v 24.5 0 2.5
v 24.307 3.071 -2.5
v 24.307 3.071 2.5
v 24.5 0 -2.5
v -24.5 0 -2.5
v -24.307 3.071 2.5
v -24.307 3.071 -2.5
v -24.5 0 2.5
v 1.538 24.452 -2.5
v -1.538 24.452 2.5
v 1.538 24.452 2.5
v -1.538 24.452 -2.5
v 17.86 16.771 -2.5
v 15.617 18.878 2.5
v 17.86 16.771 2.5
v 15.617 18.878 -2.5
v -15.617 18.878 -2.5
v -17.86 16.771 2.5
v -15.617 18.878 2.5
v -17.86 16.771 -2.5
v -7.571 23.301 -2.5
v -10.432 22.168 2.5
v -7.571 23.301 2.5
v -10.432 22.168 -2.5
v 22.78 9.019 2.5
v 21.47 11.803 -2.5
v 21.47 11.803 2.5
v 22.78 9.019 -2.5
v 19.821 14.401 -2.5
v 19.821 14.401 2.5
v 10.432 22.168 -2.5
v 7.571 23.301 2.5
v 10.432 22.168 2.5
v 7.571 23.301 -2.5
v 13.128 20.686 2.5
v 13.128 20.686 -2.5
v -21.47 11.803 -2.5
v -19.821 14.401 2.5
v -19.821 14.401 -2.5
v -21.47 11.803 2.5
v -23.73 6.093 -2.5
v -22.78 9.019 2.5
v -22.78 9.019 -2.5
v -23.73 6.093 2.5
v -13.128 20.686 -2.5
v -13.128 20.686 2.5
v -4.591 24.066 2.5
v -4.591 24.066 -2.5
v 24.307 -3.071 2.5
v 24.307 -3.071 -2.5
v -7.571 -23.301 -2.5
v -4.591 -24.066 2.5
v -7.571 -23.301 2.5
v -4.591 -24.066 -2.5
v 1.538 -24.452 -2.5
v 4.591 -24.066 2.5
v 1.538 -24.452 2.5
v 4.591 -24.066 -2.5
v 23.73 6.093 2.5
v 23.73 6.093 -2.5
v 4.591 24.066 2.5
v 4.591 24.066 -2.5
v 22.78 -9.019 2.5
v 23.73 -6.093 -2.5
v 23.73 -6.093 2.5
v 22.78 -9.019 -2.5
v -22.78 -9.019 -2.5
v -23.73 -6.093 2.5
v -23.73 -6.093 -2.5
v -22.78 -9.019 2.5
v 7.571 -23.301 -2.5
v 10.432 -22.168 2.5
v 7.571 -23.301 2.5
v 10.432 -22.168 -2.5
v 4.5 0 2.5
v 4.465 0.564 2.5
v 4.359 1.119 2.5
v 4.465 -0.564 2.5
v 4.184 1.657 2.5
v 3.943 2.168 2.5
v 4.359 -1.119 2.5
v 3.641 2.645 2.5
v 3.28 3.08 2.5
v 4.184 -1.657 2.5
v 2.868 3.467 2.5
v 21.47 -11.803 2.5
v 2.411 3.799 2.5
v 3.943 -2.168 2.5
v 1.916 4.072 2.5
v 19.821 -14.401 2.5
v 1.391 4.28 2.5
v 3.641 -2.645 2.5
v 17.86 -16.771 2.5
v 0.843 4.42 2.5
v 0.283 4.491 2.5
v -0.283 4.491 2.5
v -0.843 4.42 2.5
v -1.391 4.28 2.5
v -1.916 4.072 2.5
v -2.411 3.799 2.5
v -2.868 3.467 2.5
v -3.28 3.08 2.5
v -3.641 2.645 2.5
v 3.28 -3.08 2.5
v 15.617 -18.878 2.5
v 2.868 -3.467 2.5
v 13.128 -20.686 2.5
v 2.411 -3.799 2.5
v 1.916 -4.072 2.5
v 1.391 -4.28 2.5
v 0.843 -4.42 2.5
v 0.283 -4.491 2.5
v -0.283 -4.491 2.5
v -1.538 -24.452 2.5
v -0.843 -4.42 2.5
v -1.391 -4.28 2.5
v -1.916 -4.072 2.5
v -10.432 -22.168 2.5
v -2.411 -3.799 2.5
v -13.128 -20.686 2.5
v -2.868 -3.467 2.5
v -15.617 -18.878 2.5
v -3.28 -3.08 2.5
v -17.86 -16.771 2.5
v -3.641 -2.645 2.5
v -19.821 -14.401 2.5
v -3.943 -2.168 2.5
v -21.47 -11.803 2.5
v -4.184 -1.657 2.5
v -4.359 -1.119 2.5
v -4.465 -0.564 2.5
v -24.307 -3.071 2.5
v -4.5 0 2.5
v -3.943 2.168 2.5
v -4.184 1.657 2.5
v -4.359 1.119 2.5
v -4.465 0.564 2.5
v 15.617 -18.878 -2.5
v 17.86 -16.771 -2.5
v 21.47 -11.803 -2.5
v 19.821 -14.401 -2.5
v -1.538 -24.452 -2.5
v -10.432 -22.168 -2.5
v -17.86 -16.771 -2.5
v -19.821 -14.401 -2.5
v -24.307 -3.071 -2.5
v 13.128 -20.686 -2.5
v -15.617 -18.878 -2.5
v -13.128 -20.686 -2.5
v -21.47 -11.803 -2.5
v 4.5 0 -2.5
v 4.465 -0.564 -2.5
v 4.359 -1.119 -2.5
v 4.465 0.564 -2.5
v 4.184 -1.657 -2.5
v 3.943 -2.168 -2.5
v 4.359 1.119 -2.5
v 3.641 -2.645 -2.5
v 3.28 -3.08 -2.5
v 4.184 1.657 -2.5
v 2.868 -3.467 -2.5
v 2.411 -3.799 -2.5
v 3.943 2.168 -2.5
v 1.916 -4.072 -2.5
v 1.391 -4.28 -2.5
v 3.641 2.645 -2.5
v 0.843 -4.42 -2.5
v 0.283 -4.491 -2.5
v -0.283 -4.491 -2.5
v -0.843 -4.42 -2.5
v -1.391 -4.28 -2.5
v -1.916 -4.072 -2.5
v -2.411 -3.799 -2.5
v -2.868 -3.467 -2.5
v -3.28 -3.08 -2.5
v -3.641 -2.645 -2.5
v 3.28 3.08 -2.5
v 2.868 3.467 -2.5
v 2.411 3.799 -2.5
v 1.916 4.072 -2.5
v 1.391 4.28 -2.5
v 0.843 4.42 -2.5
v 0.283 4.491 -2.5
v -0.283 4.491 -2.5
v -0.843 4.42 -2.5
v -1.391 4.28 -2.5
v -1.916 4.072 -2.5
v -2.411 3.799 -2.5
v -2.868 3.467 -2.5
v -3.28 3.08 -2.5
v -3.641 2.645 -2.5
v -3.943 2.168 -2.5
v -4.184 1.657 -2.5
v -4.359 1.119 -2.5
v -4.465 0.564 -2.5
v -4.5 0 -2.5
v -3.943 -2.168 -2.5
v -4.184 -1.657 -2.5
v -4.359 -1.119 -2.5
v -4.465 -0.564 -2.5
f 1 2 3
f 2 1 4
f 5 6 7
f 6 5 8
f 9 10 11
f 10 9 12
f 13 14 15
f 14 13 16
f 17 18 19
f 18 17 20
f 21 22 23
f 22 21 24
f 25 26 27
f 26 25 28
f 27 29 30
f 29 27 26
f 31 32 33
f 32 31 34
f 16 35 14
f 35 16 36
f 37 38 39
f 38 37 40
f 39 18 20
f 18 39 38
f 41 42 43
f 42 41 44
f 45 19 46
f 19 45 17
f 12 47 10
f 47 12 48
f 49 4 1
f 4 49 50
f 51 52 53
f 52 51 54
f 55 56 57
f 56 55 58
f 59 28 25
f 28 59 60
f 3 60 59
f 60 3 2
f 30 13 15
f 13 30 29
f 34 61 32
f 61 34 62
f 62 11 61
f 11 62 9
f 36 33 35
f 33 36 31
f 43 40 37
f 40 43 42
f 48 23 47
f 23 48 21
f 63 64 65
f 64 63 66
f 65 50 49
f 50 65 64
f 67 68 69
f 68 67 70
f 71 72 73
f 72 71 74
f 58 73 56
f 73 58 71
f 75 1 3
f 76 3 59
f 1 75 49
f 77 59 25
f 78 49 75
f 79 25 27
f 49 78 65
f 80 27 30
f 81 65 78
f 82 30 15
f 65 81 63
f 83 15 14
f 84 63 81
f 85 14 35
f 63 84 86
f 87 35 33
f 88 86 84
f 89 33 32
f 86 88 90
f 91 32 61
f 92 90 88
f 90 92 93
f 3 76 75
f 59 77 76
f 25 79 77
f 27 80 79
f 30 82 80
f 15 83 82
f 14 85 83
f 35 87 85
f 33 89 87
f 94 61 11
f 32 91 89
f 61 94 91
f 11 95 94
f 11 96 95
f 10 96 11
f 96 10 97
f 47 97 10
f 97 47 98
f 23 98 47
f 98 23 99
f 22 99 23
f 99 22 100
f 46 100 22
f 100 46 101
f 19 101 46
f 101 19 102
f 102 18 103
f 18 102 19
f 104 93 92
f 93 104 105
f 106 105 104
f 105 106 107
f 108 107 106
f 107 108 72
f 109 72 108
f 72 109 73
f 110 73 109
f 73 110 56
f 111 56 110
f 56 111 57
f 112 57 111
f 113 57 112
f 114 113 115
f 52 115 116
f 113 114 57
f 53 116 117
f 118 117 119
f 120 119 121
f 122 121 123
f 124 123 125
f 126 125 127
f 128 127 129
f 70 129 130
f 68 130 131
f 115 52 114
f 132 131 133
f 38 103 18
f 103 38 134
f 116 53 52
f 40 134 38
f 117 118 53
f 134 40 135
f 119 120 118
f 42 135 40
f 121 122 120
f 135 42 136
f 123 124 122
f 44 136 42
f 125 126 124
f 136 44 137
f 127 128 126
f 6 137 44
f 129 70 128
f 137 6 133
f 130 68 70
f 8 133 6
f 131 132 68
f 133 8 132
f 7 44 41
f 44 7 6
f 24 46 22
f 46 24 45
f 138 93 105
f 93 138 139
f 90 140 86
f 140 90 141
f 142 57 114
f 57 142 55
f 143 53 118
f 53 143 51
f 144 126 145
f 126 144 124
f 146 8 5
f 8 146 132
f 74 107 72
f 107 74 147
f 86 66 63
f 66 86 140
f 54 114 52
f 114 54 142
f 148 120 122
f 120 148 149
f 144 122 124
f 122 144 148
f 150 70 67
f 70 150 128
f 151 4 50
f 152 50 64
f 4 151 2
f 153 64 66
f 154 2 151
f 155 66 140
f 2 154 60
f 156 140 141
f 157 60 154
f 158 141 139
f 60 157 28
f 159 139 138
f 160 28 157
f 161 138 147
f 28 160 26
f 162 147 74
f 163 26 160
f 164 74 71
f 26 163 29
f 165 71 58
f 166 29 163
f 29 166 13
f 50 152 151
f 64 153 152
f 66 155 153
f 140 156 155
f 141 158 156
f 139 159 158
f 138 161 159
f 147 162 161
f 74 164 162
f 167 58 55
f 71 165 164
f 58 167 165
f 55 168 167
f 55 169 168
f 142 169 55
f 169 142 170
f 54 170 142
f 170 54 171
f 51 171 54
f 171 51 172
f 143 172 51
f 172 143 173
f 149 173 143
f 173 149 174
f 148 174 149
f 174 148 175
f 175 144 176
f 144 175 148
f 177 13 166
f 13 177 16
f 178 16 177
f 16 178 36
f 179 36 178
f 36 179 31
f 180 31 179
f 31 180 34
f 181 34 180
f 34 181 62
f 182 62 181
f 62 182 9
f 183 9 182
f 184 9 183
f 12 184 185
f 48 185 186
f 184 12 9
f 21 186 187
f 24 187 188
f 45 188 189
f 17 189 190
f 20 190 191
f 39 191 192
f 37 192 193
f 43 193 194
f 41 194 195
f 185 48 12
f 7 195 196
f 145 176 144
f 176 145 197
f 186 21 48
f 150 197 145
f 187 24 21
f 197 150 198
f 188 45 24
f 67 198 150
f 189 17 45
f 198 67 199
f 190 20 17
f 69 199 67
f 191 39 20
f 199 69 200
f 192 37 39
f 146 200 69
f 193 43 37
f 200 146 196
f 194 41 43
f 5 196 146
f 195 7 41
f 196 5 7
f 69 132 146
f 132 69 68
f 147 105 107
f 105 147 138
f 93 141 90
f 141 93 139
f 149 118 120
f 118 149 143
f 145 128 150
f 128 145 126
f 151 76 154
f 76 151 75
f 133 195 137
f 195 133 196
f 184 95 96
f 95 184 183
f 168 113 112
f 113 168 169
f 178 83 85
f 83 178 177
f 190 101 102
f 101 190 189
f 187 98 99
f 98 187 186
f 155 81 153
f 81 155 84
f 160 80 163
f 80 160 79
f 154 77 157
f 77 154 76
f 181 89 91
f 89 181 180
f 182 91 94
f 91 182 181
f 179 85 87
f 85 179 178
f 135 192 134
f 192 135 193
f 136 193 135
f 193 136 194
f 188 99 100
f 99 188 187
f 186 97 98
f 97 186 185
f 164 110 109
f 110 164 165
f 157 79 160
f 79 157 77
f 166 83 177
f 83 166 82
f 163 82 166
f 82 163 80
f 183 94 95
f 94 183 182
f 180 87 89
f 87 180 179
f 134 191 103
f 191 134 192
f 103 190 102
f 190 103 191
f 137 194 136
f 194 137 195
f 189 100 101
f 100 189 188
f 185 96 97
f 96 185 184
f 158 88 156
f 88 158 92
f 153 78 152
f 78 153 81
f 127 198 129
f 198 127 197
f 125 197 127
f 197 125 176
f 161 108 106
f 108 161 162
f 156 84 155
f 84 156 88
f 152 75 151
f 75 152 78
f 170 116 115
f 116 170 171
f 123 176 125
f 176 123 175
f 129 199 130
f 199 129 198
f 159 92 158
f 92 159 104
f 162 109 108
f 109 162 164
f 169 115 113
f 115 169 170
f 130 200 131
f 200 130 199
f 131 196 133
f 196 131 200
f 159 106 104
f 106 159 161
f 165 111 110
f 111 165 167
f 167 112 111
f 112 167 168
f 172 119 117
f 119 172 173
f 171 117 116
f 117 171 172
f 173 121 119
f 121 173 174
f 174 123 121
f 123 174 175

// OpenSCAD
$fn = 50;


difference() {
	union() {
		translate(v = [0, 0, -2.5000000000]) {
			cylinder(h = 5, r = 24.5000000000);
		}
	}
	union() {
		translate(v = [0, 0, -100.0000000000]) {
			cylinder(h = 200, r = 4.5000000000);
		}
	}
}
